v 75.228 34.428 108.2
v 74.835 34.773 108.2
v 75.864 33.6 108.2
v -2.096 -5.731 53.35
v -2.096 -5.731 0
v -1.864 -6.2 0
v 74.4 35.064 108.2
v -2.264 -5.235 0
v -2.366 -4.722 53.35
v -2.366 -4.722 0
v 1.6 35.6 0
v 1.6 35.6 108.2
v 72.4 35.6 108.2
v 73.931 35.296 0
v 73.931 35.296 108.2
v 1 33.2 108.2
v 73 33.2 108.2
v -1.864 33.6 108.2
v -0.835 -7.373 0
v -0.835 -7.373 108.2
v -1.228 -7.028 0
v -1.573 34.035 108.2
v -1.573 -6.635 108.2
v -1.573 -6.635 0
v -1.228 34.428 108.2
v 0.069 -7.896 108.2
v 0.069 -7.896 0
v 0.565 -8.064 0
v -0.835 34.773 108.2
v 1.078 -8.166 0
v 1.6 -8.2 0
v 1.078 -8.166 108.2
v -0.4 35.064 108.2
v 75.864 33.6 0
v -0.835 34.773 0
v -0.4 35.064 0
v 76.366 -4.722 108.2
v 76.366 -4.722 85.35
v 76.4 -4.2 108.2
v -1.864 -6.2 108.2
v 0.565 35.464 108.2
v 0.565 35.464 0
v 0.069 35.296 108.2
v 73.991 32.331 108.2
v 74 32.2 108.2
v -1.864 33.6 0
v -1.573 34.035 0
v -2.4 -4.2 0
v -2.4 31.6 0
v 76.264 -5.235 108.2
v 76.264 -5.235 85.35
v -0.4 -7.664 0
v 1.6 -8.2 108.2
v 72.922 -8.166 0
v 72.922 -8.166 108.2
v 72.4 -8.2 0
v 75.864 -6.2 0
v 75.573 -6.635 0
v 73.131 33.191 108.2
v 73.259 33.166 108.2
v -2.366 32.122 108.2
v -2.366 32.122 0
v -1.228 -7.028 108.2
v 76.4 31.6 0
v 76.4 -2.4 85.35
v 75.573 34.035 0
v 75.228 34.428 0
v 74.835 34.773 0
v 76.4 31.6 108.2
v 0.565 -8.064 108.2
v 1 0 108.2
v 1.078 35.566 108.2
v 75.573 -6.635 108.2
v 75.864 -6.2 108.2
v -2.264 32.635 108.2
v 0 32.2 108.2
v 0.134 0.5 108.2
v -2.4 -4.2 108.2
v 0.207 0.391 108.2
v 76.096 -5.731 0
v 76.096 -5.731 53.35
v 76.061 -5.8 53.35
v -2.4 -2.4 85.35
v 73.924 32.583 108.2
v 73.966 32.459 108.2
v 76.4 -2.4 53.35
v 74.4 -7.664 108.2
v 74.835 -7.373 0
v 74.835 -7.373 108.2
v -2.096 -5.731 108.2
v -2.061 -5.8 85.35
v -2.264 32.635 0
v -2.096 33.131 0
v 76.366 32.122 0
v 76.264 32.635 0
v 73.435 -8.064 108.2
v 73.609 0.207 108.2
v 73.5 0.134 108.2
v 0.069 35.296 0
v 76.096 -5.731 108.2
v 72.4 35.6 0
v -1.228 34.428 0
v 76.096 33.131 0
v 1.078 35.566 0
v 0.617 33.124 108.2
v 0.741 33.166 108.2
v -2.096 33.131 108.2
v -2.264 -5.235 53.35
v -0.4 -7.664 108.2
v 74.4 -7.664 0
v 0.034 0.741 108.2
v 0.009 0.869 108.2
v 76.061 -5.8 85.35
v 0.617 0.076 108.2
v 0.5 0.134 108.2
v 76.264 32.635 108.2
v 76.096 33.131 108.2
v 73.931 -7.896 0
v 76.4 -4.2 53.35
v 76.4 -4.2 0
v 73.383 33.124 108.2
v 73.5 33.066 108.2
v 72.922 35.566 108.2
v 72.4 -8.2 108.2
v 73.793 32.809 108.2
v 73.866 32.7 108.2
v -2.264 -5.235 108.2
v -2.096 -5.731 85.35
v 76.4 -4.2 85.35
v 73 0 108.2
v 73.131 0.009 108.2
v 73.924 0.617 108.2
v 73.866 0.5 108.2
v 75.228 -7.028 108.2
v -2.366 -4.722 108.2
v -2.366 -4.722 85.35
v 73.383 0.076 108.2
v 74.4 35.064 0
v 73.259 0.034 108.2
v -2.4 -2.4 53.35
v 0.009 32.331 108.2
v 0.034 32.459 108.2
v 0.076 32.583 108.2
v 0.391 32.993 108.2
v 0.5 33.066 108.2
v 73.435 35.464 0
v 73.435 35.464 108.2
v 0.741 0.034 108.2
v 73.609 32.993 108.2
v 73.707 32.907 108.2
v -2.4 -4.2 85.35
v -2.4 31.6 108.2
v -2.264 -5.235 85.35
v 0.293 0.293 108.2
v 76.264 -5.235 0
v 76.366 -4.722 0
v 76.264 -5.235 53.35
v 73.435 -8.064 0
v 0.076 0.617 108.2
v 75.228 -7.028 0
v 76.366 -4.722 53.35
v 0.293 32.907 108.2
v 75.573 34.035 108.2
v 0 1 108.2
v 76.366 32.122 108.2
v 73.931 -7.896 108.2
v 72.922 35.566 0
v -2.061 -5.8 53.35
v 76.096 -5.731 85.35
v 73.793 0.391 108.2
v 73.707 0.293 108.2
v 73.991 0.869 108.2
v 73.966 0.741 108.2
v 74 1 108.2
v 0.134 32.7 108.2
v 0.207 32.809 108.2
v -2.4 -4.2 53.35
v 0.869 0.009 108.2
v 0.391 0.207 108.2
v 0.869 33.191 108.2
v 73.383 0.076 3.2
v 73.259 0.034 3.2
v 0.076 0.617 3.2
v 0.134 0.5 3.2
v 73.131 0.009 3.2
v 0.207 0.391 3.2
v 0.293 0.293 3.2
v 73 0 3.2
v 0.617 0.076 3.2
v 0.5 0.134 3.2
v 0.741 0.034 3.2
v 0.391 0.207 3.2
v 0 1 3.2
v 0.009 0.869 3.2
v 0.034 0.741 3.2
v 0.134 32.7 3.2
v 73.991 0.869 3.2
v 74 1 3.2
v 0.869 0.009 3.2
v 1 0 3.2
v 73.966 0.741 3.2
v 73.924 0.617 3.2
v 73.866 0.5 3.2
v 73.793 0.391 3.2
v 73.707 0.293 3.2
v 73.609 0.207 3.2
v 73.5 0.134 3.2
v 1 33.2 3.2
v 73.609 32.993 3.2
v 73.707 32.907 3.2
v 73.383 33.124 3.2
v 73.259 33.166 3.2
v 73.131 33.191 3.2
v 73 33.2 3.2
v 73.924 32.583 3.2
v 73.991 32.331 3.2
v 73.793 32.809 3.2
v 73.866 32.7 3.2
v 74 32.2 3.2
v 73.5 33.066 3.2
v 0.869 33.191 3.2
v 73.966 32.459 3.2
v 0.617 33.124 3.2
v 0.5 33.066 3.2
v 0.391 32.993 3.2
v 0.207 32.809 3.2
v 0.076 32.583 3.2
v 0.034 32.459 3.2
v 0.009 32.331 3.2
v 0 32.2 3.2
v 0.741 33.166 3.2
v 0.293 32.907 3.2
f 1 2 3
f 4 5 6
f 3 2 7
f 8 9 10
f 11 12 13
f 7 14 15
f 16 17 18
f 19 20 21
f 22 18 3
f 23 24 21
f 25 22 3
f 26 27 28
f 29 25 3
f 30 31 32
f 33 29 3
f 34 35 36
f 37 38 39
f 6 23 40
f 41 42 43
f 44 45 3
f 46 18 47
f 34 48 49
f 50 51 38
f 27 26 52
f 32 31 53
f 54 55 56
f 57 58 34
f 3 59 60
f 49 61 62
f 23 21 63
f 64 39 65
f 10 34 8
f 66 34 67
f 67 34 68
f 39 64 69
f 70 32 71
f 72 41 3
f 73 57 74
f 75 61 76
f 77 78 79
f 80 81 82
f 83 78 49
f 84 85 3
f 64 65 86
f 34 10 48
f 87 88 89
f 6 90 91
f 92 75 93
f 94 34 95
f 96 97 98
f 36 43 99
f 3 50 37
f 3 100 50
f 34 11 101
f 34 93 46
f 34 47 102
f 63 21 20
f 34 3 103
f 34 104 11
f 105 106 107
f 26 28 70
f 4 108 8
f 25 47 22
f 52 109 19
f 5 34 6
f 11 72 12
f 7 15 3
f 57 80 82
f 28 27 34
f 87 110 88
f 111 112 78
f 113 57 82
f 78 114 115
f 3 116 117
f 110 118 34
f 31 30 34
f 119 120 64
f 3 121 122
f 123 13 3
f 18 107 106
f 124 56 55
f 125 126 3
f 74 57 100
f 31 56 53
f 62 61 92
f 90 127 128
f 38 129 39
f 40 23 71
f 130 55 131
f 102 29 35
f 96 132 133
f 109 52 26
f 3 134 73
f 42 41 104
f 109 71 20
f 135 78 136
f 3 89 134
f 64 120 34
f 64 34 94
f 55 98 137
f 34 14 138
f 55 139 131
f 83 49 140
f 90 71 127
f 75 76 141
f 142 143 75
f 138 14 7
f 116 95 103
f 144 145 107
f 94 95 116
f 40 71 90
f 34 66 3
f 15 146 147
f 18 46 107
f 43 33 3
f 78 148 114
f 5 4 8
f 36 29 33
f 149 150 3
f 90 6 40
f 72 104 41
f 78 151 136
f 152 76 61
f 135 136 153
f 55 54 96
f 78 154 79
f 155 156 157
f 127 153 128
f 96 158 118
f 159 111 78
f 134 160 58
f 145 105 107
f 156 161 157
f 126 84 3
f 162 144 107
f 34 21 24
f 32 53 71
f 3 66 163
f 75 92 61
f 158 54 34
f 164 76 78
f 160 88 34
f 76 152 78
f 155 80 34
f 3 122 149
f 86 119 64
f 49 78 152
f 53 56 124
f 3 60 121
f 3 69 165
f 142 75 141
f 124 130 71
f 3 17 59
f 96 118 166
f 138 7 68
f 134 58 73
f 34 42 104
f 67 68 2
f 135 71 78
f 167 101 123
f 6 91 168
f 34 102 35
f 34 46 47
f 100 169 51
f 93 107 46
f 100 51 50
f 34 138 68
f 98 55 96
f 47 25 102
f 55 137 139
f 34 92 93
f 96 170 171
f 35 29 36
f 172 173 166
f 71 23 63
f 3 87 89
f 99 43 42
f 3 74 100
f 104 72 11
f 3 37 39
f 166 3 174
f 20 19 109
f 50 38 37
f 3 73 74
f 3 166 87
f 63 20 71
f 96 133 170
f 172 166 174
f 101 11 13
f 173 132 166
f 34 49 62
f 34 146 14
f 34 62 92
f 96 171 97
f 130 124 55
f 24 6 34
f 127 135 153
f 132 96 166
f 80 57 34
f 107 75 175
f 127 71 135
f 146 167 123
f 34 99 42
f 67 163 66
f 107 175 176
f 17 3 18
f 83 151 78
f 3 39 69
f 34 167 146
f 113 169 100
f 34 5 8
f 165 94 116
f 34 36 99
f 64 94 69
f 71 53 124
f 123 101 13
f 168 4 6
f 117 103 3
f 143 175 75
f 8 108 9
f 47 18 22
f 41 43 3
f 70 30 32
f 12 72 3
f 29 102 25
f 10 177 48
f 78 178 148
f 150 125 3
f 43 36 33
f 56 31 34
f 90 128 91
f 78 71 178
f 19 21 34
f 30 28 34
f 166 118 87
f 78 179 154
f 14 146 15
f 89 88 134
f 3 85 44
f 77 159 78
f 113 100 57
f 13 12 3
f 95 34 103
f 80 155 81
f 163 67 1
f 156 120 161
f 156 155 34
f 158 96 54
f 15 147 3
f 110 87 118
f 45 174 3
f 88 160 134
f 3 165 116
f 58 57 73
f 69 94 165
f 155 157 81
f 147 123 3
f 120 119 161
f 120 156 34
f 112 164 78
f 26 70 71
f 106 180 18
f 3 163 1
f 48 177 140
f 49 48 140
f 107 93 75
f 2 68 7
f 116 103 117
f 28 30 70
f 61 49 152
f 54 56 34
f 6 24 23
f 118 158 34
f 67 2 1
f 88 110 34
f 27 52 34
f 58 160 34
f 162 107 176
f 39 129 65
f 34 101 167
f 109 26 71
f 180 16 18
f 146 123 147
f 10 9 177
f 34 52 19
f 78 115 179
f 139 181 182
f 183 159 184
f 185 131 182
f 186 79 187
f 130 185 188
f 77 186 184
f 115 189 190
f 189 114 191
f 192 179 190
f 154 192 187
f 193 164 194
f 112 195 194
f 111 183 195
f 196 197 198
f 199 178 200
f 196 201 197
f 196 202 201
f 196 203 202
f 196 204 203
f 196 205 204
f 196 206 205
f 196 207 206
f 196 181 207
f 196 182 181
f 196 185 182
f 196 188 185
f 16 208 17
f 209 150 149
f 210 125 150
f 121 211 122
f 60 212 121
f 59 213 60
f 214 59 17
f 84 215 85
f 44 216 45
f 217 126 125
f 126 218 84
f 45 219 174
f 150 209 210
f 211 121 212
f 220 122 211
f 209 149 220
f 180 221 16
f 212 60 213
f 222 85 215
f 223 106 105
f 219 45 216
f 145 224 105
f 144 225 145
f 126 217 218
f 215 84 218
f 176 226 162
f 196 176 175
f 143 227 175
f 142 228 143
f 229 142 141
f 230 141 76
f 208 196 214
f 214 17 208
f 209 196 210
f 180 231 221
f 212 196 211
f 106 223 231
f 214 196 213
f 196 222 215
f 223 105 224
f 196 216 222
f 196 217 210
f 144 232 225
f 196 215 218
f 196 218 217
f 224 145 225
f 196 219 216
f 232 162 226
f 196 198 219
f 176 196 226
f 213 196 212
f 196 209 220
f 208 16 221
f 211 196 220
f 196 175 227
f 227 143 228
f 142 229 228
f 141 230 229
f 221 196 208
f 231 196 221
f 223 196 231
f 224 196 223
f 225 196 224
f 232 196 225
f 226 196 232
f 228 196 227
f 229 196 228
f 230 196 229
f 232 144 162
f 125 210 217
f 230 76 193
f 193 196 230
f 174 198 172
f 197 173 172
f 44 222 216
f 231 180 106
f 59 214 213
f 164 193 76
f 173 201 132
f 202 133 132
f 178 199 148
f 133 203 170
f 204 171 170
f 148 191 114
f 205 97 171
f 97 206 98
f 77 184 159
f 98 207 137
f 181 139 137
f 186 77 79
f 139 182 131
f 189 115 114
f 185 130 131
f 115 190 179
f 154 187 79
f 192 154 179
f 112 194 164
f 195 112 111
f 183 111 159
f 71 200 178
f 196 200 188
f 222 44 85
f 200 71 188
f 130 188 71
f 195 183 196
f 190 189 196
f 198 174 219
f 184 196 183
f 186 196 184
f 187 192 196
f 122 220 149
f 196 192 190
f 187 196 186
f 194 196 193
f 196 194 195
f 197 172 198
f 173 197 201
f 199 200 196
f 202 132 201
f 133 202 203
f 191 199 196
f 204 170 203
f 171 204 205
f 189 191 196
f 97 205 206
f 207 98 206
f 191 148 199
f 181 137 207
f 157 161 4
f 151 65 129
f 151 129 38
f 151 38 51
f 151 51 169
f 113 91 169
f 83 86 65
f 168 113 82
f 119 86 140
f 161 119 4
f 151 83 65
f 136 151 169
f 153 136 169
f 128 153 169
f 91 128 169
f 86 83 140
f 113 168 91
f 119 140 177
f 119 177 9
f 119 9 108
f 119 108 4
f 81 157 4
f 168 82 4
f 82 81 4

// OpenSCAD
// Xiaomi PB2067. Colocar el fondo en la cama. Medidas en mm.
// La correa se enhebra lateralmente por el túnel de la pared trasera.
ancho_bateria = 72;
grosor_bateria = 31.2;
holgura_por_cara = 1;
profundidad = 105;
ancho_correa = 30;
grosor_correa = 2;
pared = 2.4;
fondo = 3.2;
$fn = 48;
a = ancho_bateria + 2*holgura_por_cara;
g = grosor_bateria + 2*holgura_por_cara;
paso = grosor_correa + 1.4;
dorso = pared*2 + paso;
alto = fondo + profundidad;
z_correa = fondo + profundidad*0.63;
assert(z_correa + ancho_correa/2 + paso < alto);
module planta(x,y,w,d,r,h) {
    hull() for(i=[x+r,x+w-r], j=[y+r,y+d-r])
        translate([i,j,0]) cylinder(r=r,h=h);
}
difference(){
    planta(-pared,-dorso,a+2*pared,g+dorso+pared,4,alto);
    translate([0,0,fondo]) planta(0,0,a,g,1,profundidad+1);
    // Túnel transversal, abre en ambos cantos, separado de la batería.
    translate([-pared-1,-dorso+pared,z_correa-(ancho_correa+2)/2])
        cube([a+2*pared+2,paso,ancho_correa+2]);
}
